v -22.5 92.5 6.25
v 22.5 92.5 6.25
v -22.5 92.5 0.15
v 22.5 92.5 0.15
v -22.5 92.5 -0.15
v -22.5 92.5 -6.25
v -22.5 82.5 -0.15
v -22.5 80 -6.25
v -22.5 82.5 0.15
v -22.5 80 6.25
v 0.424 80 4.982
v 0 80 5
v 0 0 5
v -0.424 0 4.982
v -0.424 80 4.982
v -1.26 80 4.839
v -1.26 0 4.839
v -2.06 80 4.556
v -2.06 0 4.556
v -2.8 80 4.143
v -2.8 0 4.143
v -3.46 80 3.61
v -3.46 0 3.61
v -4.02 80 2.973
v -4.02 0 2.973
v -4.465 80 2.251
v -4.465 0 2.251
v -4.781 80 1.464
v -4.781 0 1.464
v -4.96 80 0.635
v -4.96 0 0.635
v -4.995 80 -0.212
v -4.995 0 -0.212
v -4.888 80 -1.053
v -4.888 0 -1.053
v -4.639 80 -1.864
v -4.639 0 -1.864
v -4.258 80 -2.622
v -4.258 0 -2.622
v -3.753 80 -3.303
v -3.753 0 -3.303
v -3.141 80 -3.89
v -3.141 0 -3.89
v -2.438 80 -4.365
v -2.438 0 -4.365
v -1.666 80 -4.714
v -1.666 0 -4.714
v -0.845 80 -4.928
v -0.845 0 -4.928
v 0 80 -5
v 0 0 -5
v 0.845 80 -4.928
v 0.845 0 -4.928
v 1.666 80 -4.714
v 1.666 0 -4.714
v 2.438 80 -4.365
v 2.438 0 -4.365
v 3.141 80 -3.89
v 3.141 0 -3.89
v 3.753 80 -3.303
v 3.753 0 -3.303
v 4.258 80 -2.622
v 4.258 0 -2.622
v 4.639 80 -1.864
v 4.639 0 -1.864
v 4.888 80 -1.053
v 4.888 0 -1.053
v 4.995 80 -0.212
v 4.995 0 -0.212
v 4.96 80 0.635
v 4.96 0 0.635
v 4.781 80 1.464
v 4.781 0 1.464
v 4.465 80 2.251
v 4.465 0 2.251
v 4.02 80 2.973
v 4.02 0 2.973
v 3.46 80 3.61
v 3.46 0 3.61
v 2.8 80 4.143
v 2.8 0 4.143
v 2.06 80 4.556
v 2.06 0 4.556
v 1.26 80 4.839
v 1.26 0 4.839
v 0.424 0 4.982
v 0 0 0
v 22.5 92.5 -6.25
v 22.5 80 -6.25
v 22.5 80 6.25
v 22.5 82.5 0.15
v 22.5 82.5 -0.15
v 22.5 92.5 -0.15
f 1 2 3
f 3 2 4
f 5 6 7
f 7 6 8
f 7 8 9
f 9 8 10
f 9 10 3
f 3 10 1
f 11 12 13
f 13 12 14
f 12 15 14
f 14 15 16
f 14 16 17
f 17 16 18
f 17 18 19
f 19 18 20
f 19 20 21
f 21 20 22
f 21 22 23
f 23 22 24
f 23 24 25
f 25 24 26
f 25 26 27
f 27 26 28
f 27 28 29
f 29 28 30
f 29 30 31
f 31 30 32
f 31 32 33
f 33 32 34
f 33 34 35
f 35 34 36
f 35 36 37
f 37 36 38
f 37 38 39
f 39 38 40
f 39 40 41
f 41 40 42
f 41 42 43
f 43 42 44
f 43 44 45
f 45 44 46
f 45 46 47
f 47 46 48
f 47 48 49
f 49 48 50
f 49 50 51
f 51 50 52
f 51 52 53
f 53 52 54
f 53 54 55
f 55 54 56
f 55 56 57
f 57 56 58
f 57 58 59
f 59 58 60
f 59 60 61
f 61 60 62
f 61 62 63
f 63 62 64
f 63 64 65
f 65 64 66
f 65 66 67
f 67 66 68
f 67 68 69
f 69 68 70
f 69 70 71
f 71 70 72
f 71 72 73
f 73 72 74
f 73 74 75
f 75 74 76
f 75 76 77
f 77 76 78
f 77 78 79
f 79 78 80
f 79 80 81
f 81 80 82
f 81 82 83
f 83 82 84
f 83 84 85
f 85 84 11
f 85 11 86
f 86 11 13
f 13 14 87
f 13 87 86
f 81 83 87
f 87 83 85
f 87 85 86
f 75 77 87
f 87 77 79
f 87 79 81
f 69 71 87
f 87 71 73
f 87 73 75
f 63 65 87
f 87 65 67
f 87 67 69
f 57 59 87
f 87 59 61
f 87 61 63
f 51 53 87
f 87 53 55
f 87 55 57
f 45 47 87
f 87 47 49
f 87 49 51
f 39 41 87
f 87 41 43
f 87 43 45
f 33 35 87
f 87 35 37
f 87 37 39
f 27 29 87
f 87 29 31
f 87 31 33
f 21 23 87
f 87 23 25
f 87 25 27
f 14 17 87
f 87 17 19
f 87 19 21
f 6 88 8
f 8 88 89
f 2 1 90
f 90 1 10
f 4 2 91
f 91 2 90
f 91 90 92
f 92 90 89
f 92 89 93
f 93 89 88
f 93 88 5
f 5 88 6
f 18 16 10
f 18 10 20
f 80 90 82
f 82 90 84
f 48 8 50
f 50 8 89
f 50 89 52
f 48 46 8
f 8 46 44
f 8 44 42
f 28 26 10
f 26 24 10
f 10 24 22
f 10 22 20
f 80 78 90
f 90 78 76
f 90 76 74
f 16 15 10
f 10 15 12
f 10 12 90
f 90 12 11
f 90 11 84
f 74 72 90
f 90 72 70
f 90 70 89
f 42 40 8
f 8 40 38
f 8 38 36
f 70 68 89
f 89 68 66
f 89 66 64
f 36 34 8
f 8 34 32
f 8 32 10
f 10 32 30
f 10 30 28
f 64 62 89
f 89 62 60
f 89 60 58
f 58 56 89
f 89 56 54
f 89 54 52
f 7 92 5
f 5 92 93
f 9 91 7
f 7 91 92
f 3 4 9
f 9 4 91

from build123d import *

# Parameters (mm, degrees)
SKETCH1_R               = 5
BOSS_EXTRUDE1_DEPTH     = 80
BOSS_EXTRUDE2_START     = 80
SKETCH2_W               = 44.999999916
SKETCH2_H               = 12.5
BOSS_EXTRUDE2_DEPTH     = 12.5
CUT_EXTRUDE1_DEPTH      = 96.402109506
CUT_EXTRUDE1_DEPTH_BACK = 96.402109506
SKETCH3_W               = 0.3
SKETCH3_H               = 10


with BuildPart() as part:
    # Sketch1 → Boss-Extrude1 (new body)
    with BuildSketch(Plane(origin=(0, 0, 0), x_dir=(1, 0, 0), z_dir=(0, 1, 0))):
        with Locations(Location((0, 0, 0), (0, 0, 270))):
            Circle(SKETCH1_R)
    extrude(amount=BOSS_EXTRUDE1_DEPTH)

    # Sketch2 → Boss-Extrude2 (add)
    with BuildSketch(Plane(origin=(0, 0, 0), x_dir=(1, 0, 0), z_dir=(0, 1, 0)).offset(BOSS_EXTRUDE2_START)):
        Rectangle(SKETCH2_W, SKETCH2_H)
    extrude(amount=BOSS_EXTRUDE2_DEPTH)

    # Sketch3 → Cut-Extrude1 (cut, two sides: drawn at the far end of the back side and taken through both)
    with BuildSketch(Plane(origin=(0, 0, 0), x_dir=(0, 0, -1), z_dir=(1, 0, 0)).offset(-CUT_EXTRUDE1_DEPTH_BACK)):
        with Locations((0, 87.5)):
            Rectangle(SKETCH3_W, SKETCH3_H)
    extrude(amount=CUT_EXTRUDE1_DEPTH + CUT_EXTRUDE1_DEPTH_BACK, mode=Mode.SUBTRACT)


solid = part.part
